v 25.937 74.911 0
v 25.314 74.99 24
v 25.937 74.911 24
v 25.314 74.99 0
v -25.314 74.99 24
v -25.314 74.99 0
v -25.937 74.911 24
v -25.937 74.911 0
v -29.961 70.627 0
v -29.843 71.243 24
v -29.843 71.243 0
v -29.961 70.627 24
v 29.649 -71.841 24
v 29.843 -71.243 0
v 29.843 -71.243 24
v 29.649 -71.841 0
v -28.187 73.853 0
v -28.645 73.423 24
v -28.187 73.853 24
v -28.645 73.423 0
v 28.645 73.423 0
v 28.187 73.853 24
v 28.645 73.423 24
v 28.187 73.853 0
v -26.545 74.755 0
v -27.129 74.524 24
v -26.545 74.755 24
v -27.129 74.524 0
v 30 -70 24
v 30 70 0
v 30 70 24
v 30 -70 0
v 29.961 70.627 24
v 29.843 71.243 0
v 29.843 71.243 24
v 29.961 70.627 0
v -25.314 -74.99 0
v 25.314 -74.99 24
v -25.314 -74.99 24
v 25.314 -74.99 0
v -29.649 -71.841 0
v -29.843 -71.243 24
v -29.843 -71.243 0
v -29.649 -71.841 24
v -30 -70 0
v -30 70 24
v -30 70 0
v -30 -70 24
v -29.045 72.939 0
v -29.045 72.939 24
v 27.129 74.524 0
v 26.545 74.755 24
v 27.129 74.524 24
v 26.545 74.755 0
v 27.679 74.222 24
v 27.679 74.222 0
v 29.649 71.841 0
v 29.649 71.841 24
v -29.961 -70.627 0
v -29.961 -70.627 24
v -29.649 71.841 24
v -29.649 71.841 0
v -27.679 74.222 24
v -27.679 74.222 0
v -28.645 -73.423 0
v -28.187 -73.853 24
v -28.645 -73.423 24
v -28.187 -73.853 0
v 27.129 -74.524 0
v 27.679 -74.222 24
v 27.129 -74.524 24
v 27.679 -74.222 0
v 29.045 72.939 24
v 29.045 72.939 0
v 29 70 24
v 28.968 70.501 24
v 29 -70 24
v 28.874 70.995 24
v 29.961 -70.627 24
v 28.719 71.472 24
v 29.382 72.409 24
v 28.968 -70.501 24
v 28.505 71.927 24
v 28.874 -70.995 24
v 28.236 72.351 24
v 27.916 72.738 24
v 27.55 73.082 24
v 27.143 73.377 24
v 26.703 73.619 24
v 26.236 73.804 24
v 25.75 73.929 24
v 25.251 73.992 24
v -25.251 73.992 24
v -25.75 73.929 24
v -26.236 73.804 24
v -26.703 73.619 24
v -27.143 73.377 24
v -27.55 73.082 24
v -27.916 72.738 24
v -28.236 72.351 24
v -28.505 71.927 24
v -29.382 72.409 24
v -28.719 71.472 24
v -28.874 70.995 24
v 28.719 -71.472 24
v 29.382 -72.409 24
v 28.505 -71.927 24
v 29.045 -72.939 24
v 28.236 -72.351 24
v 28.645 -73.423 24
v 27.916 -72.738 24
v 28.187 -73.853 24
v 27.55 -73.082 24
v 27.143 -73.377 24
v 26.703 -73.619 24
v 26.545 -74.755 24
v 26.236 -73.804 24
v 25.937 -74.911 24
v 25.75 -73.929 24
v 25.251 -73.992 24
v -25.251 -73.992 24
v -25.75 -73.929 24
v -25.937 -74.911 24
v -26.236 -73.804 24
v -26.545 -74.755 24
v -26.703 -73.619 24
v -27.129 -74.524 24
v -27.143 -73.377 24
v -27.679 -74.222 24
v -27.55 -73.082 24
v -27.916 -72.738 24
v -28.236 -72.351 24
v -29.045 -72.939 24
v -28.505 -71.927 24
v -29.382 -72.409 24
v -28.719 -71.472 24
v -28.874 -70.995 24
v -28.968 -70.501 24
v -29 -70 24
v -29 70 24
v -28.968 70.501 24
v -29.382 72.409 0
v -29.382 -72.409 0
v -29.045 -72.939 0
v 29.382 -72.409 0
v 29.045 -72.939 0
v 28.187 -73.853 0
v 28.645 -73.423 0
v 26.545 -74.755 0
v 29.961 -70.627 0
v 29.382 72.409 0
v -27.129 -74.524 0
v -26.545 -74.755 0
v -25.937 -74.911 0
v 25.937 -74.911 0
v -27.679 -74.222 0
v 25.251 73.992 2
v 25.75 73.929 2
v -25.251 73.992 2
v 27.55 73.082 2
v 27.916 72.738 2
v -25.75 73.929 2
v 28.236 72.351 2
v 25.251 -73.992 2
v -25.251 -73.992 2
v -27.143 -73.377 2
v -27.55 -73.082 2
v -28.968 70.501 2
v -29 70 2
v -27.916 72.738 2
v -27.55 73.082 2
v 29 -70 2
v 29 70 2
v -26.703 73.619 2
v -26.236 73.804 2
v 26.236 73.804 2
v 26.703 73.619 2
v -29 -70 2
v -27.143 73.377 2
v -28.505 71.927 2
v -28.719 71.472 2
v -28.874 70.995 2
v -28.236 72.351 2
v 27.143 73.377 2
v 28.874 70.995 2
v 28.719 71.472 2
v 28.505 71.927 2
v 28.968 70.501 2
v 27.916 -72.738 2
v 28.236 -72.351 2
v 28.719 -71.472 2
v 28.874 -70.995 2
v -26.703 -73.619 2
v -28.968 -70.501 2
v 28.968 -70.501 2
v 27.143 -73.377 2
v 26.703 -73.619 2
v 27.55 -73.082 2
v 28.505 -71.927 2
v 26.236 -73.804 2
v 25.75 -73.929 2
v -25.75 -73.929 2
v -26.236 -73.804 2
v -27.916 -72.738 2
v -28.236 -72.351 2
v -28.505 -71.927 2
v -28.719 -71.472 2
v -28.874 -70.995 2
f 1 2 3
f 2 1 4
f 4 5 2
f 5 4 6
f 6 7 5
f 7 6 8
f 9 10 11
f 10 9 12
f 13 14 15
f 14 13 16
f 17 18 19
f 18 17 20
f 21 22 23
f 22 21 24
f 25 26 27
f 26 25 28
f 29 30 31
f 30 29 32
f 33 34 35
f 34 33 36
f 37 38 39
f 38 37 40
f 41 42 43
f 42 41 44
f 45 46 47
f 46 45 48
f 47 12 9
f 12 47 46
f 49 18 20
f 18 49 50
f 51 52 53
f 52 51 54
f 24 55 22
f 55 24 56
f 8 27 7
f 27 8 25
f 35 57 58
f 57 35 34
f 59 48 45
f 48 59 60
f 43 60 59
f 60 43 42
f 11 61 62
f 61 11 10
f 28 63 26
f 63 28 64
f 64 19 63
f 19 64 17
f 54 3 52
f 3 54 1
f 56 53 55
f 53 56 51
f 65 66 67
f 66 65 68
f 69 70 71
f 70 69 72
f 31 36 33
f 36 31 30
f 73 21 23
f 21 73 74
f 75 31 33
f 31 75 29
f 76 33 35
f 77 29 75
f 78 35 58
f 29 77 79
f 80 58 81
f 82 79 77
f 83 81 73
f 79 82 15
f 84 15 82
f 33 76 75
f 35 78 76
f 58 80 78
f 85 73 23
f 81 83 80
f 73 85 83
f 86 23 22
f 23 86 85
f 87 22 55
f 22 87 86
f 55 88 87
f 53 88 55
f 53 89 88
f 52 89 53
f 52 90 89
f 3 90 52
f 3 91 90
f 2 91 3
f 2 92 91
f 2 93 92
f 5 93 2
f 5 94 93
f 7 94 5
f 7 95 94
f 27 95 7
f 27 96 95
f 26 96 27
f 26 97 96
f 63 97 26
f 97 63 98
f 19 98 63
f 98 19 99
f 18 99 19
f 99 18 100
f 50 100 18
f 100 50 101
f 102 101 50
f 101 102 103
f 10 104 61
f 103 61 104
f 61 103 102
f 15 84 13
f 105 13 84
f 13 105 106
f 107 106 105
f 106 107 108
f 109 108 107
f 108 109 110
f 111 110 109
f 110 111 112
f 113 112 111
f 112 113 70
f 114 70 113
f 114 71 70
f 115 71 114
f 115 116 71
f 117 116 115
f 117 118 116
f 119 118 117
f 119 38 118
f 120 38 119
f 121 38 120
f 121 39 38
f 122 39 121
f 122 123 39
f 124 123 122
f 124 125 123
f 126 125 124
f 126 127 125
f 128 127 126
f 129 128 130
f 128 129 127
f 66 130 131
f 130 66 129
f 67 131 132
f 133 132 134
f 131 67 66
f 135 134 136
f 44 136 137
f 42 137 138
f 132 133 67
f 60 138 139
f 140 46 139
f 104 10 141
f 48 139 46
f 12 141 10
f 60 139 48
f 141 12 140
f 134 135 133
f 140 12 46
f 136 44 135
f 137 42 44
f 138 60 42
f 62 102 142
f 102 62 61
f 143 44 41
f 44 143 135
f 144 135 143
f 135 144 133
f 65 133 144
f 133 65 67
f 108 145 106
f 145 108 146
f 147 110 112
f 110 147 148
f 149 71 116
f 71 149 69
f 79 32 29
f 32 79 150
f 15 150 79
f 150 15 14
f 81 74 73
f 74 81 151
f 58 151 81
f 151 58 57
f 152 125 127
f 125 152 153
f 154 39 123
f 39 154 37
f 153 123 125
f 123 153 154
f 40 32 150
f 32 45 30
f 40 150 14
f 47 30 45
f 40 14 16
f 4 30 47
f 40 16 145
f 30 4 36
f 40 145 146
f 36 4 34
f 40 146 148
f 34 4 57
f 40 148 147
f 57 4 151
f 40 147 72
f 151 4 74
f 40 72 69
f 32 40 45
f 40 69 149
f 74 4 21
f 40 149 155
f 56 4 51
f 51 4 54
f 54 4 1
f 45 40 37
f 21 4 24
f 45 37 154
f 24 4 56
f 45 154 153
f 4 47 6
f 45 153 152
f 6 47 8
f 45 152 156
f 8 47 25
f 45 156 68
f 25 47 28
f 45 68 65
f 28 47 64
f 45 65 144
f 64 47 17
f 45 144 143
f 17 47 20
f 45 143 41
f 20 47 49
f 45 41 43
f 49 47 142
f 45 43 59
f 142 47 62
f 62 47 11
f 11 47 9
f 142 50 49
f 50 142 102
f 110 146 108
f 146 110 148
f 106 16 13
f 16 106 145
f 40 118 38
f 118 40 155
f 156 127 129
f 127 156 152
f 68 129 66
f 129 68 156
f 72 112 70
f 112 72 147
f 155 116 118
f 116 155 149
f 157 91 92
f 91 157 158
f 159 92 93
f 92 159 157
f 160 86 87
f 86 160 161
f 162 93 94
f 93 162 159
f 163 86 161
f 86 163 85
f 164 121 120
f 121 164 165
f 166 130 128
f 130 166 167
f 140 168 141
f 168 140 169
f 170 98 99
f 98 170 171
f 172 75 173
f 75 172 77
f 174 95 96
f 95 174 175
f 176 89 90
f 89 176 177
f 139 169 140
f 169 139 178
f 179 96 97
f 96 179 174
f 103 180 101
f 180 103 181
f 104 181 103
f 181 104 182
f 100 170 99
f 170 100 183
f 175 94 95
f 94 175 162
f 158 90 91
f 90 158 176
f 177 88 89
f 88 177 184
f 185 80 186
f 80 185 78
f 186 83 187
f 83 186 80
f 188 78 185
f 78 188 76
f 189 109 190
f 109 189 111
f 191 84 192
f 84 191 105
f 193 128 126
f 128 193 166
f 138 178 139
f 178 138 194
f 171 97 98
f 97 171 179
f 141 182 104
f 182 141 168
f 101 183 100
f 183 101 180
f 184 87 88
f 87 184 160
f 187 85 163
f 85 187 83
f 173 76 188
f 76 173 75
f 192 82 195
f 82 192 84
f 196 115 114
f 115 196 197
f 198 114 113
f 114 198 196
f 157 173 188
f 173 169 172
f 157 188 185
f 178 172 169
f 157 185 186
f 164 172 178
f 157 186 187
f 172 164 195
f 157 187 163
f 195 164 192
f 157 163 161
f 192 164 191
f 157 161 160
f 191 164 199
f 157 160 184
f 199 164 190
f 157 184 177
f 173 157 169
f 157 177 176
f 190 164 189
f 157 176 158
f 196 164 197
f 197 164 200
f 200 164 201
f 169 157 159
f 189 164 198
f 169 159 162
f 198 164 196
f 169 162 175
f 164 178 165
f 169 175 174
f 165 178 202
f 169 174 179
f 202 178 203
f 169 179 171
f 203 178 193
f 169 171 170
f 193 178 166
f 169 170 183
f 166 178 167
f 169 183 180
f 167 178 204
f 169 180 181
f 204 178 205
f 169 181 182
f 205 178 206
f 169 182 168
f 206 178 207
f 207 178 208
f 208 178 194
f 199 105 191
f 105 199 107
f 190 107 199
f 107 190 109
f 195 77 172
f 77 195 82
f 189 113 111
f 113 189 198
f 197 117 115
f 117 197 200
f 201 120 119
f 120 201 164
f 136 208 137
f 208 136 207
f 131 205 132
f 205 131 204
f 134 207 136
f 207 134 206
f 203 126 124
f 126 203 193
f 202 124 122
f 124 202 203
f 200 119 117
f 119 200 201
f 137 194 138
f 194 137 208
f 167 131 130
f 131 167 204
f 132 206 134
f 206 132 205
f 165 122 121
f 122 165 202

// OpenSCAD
$fn = 50;


difference() {
	union() {
		hull() {
			translate(v = [-25.0000000000, 70.0000000000, 0]) {
				cylinder(h = 24, r = 5);
			}
			translate(v = [25.0000000000, 70.0000000000, 0]) {
				cylinder(h = 24, r = 5);
			}
			translate(v = [-25.0000000000, -70.0000000000, 0]) {
				cylinder(h = 24, r = 5);
			}
			translate(v = [25.0000000000, -70.0000000000, 0]) {
				cylinder(h = 24, r = 5);
			}
		}
	}
	union() {
		translate(v = [0, 0, 2]) {
			hull() {
				translate(v = [-25.0000000000, 70.0000000000, 0]) {
					cylinder(h = 22, r = 4);
				}
				translate(v = [25.0000000000, 70.0000000000, 0]) {
					cylinder(h = 22, r = 4);
				}
				translate(v = [-25.0000000000, -70.0000000000, 0]) {
					cylinder(h = 22, r = 4);
				}
				translate(v = [25.0000000000, -70.0000000000, 0]) {
					cylinder(h = 22, r = 4);
				}
			}
		}
	}
}
